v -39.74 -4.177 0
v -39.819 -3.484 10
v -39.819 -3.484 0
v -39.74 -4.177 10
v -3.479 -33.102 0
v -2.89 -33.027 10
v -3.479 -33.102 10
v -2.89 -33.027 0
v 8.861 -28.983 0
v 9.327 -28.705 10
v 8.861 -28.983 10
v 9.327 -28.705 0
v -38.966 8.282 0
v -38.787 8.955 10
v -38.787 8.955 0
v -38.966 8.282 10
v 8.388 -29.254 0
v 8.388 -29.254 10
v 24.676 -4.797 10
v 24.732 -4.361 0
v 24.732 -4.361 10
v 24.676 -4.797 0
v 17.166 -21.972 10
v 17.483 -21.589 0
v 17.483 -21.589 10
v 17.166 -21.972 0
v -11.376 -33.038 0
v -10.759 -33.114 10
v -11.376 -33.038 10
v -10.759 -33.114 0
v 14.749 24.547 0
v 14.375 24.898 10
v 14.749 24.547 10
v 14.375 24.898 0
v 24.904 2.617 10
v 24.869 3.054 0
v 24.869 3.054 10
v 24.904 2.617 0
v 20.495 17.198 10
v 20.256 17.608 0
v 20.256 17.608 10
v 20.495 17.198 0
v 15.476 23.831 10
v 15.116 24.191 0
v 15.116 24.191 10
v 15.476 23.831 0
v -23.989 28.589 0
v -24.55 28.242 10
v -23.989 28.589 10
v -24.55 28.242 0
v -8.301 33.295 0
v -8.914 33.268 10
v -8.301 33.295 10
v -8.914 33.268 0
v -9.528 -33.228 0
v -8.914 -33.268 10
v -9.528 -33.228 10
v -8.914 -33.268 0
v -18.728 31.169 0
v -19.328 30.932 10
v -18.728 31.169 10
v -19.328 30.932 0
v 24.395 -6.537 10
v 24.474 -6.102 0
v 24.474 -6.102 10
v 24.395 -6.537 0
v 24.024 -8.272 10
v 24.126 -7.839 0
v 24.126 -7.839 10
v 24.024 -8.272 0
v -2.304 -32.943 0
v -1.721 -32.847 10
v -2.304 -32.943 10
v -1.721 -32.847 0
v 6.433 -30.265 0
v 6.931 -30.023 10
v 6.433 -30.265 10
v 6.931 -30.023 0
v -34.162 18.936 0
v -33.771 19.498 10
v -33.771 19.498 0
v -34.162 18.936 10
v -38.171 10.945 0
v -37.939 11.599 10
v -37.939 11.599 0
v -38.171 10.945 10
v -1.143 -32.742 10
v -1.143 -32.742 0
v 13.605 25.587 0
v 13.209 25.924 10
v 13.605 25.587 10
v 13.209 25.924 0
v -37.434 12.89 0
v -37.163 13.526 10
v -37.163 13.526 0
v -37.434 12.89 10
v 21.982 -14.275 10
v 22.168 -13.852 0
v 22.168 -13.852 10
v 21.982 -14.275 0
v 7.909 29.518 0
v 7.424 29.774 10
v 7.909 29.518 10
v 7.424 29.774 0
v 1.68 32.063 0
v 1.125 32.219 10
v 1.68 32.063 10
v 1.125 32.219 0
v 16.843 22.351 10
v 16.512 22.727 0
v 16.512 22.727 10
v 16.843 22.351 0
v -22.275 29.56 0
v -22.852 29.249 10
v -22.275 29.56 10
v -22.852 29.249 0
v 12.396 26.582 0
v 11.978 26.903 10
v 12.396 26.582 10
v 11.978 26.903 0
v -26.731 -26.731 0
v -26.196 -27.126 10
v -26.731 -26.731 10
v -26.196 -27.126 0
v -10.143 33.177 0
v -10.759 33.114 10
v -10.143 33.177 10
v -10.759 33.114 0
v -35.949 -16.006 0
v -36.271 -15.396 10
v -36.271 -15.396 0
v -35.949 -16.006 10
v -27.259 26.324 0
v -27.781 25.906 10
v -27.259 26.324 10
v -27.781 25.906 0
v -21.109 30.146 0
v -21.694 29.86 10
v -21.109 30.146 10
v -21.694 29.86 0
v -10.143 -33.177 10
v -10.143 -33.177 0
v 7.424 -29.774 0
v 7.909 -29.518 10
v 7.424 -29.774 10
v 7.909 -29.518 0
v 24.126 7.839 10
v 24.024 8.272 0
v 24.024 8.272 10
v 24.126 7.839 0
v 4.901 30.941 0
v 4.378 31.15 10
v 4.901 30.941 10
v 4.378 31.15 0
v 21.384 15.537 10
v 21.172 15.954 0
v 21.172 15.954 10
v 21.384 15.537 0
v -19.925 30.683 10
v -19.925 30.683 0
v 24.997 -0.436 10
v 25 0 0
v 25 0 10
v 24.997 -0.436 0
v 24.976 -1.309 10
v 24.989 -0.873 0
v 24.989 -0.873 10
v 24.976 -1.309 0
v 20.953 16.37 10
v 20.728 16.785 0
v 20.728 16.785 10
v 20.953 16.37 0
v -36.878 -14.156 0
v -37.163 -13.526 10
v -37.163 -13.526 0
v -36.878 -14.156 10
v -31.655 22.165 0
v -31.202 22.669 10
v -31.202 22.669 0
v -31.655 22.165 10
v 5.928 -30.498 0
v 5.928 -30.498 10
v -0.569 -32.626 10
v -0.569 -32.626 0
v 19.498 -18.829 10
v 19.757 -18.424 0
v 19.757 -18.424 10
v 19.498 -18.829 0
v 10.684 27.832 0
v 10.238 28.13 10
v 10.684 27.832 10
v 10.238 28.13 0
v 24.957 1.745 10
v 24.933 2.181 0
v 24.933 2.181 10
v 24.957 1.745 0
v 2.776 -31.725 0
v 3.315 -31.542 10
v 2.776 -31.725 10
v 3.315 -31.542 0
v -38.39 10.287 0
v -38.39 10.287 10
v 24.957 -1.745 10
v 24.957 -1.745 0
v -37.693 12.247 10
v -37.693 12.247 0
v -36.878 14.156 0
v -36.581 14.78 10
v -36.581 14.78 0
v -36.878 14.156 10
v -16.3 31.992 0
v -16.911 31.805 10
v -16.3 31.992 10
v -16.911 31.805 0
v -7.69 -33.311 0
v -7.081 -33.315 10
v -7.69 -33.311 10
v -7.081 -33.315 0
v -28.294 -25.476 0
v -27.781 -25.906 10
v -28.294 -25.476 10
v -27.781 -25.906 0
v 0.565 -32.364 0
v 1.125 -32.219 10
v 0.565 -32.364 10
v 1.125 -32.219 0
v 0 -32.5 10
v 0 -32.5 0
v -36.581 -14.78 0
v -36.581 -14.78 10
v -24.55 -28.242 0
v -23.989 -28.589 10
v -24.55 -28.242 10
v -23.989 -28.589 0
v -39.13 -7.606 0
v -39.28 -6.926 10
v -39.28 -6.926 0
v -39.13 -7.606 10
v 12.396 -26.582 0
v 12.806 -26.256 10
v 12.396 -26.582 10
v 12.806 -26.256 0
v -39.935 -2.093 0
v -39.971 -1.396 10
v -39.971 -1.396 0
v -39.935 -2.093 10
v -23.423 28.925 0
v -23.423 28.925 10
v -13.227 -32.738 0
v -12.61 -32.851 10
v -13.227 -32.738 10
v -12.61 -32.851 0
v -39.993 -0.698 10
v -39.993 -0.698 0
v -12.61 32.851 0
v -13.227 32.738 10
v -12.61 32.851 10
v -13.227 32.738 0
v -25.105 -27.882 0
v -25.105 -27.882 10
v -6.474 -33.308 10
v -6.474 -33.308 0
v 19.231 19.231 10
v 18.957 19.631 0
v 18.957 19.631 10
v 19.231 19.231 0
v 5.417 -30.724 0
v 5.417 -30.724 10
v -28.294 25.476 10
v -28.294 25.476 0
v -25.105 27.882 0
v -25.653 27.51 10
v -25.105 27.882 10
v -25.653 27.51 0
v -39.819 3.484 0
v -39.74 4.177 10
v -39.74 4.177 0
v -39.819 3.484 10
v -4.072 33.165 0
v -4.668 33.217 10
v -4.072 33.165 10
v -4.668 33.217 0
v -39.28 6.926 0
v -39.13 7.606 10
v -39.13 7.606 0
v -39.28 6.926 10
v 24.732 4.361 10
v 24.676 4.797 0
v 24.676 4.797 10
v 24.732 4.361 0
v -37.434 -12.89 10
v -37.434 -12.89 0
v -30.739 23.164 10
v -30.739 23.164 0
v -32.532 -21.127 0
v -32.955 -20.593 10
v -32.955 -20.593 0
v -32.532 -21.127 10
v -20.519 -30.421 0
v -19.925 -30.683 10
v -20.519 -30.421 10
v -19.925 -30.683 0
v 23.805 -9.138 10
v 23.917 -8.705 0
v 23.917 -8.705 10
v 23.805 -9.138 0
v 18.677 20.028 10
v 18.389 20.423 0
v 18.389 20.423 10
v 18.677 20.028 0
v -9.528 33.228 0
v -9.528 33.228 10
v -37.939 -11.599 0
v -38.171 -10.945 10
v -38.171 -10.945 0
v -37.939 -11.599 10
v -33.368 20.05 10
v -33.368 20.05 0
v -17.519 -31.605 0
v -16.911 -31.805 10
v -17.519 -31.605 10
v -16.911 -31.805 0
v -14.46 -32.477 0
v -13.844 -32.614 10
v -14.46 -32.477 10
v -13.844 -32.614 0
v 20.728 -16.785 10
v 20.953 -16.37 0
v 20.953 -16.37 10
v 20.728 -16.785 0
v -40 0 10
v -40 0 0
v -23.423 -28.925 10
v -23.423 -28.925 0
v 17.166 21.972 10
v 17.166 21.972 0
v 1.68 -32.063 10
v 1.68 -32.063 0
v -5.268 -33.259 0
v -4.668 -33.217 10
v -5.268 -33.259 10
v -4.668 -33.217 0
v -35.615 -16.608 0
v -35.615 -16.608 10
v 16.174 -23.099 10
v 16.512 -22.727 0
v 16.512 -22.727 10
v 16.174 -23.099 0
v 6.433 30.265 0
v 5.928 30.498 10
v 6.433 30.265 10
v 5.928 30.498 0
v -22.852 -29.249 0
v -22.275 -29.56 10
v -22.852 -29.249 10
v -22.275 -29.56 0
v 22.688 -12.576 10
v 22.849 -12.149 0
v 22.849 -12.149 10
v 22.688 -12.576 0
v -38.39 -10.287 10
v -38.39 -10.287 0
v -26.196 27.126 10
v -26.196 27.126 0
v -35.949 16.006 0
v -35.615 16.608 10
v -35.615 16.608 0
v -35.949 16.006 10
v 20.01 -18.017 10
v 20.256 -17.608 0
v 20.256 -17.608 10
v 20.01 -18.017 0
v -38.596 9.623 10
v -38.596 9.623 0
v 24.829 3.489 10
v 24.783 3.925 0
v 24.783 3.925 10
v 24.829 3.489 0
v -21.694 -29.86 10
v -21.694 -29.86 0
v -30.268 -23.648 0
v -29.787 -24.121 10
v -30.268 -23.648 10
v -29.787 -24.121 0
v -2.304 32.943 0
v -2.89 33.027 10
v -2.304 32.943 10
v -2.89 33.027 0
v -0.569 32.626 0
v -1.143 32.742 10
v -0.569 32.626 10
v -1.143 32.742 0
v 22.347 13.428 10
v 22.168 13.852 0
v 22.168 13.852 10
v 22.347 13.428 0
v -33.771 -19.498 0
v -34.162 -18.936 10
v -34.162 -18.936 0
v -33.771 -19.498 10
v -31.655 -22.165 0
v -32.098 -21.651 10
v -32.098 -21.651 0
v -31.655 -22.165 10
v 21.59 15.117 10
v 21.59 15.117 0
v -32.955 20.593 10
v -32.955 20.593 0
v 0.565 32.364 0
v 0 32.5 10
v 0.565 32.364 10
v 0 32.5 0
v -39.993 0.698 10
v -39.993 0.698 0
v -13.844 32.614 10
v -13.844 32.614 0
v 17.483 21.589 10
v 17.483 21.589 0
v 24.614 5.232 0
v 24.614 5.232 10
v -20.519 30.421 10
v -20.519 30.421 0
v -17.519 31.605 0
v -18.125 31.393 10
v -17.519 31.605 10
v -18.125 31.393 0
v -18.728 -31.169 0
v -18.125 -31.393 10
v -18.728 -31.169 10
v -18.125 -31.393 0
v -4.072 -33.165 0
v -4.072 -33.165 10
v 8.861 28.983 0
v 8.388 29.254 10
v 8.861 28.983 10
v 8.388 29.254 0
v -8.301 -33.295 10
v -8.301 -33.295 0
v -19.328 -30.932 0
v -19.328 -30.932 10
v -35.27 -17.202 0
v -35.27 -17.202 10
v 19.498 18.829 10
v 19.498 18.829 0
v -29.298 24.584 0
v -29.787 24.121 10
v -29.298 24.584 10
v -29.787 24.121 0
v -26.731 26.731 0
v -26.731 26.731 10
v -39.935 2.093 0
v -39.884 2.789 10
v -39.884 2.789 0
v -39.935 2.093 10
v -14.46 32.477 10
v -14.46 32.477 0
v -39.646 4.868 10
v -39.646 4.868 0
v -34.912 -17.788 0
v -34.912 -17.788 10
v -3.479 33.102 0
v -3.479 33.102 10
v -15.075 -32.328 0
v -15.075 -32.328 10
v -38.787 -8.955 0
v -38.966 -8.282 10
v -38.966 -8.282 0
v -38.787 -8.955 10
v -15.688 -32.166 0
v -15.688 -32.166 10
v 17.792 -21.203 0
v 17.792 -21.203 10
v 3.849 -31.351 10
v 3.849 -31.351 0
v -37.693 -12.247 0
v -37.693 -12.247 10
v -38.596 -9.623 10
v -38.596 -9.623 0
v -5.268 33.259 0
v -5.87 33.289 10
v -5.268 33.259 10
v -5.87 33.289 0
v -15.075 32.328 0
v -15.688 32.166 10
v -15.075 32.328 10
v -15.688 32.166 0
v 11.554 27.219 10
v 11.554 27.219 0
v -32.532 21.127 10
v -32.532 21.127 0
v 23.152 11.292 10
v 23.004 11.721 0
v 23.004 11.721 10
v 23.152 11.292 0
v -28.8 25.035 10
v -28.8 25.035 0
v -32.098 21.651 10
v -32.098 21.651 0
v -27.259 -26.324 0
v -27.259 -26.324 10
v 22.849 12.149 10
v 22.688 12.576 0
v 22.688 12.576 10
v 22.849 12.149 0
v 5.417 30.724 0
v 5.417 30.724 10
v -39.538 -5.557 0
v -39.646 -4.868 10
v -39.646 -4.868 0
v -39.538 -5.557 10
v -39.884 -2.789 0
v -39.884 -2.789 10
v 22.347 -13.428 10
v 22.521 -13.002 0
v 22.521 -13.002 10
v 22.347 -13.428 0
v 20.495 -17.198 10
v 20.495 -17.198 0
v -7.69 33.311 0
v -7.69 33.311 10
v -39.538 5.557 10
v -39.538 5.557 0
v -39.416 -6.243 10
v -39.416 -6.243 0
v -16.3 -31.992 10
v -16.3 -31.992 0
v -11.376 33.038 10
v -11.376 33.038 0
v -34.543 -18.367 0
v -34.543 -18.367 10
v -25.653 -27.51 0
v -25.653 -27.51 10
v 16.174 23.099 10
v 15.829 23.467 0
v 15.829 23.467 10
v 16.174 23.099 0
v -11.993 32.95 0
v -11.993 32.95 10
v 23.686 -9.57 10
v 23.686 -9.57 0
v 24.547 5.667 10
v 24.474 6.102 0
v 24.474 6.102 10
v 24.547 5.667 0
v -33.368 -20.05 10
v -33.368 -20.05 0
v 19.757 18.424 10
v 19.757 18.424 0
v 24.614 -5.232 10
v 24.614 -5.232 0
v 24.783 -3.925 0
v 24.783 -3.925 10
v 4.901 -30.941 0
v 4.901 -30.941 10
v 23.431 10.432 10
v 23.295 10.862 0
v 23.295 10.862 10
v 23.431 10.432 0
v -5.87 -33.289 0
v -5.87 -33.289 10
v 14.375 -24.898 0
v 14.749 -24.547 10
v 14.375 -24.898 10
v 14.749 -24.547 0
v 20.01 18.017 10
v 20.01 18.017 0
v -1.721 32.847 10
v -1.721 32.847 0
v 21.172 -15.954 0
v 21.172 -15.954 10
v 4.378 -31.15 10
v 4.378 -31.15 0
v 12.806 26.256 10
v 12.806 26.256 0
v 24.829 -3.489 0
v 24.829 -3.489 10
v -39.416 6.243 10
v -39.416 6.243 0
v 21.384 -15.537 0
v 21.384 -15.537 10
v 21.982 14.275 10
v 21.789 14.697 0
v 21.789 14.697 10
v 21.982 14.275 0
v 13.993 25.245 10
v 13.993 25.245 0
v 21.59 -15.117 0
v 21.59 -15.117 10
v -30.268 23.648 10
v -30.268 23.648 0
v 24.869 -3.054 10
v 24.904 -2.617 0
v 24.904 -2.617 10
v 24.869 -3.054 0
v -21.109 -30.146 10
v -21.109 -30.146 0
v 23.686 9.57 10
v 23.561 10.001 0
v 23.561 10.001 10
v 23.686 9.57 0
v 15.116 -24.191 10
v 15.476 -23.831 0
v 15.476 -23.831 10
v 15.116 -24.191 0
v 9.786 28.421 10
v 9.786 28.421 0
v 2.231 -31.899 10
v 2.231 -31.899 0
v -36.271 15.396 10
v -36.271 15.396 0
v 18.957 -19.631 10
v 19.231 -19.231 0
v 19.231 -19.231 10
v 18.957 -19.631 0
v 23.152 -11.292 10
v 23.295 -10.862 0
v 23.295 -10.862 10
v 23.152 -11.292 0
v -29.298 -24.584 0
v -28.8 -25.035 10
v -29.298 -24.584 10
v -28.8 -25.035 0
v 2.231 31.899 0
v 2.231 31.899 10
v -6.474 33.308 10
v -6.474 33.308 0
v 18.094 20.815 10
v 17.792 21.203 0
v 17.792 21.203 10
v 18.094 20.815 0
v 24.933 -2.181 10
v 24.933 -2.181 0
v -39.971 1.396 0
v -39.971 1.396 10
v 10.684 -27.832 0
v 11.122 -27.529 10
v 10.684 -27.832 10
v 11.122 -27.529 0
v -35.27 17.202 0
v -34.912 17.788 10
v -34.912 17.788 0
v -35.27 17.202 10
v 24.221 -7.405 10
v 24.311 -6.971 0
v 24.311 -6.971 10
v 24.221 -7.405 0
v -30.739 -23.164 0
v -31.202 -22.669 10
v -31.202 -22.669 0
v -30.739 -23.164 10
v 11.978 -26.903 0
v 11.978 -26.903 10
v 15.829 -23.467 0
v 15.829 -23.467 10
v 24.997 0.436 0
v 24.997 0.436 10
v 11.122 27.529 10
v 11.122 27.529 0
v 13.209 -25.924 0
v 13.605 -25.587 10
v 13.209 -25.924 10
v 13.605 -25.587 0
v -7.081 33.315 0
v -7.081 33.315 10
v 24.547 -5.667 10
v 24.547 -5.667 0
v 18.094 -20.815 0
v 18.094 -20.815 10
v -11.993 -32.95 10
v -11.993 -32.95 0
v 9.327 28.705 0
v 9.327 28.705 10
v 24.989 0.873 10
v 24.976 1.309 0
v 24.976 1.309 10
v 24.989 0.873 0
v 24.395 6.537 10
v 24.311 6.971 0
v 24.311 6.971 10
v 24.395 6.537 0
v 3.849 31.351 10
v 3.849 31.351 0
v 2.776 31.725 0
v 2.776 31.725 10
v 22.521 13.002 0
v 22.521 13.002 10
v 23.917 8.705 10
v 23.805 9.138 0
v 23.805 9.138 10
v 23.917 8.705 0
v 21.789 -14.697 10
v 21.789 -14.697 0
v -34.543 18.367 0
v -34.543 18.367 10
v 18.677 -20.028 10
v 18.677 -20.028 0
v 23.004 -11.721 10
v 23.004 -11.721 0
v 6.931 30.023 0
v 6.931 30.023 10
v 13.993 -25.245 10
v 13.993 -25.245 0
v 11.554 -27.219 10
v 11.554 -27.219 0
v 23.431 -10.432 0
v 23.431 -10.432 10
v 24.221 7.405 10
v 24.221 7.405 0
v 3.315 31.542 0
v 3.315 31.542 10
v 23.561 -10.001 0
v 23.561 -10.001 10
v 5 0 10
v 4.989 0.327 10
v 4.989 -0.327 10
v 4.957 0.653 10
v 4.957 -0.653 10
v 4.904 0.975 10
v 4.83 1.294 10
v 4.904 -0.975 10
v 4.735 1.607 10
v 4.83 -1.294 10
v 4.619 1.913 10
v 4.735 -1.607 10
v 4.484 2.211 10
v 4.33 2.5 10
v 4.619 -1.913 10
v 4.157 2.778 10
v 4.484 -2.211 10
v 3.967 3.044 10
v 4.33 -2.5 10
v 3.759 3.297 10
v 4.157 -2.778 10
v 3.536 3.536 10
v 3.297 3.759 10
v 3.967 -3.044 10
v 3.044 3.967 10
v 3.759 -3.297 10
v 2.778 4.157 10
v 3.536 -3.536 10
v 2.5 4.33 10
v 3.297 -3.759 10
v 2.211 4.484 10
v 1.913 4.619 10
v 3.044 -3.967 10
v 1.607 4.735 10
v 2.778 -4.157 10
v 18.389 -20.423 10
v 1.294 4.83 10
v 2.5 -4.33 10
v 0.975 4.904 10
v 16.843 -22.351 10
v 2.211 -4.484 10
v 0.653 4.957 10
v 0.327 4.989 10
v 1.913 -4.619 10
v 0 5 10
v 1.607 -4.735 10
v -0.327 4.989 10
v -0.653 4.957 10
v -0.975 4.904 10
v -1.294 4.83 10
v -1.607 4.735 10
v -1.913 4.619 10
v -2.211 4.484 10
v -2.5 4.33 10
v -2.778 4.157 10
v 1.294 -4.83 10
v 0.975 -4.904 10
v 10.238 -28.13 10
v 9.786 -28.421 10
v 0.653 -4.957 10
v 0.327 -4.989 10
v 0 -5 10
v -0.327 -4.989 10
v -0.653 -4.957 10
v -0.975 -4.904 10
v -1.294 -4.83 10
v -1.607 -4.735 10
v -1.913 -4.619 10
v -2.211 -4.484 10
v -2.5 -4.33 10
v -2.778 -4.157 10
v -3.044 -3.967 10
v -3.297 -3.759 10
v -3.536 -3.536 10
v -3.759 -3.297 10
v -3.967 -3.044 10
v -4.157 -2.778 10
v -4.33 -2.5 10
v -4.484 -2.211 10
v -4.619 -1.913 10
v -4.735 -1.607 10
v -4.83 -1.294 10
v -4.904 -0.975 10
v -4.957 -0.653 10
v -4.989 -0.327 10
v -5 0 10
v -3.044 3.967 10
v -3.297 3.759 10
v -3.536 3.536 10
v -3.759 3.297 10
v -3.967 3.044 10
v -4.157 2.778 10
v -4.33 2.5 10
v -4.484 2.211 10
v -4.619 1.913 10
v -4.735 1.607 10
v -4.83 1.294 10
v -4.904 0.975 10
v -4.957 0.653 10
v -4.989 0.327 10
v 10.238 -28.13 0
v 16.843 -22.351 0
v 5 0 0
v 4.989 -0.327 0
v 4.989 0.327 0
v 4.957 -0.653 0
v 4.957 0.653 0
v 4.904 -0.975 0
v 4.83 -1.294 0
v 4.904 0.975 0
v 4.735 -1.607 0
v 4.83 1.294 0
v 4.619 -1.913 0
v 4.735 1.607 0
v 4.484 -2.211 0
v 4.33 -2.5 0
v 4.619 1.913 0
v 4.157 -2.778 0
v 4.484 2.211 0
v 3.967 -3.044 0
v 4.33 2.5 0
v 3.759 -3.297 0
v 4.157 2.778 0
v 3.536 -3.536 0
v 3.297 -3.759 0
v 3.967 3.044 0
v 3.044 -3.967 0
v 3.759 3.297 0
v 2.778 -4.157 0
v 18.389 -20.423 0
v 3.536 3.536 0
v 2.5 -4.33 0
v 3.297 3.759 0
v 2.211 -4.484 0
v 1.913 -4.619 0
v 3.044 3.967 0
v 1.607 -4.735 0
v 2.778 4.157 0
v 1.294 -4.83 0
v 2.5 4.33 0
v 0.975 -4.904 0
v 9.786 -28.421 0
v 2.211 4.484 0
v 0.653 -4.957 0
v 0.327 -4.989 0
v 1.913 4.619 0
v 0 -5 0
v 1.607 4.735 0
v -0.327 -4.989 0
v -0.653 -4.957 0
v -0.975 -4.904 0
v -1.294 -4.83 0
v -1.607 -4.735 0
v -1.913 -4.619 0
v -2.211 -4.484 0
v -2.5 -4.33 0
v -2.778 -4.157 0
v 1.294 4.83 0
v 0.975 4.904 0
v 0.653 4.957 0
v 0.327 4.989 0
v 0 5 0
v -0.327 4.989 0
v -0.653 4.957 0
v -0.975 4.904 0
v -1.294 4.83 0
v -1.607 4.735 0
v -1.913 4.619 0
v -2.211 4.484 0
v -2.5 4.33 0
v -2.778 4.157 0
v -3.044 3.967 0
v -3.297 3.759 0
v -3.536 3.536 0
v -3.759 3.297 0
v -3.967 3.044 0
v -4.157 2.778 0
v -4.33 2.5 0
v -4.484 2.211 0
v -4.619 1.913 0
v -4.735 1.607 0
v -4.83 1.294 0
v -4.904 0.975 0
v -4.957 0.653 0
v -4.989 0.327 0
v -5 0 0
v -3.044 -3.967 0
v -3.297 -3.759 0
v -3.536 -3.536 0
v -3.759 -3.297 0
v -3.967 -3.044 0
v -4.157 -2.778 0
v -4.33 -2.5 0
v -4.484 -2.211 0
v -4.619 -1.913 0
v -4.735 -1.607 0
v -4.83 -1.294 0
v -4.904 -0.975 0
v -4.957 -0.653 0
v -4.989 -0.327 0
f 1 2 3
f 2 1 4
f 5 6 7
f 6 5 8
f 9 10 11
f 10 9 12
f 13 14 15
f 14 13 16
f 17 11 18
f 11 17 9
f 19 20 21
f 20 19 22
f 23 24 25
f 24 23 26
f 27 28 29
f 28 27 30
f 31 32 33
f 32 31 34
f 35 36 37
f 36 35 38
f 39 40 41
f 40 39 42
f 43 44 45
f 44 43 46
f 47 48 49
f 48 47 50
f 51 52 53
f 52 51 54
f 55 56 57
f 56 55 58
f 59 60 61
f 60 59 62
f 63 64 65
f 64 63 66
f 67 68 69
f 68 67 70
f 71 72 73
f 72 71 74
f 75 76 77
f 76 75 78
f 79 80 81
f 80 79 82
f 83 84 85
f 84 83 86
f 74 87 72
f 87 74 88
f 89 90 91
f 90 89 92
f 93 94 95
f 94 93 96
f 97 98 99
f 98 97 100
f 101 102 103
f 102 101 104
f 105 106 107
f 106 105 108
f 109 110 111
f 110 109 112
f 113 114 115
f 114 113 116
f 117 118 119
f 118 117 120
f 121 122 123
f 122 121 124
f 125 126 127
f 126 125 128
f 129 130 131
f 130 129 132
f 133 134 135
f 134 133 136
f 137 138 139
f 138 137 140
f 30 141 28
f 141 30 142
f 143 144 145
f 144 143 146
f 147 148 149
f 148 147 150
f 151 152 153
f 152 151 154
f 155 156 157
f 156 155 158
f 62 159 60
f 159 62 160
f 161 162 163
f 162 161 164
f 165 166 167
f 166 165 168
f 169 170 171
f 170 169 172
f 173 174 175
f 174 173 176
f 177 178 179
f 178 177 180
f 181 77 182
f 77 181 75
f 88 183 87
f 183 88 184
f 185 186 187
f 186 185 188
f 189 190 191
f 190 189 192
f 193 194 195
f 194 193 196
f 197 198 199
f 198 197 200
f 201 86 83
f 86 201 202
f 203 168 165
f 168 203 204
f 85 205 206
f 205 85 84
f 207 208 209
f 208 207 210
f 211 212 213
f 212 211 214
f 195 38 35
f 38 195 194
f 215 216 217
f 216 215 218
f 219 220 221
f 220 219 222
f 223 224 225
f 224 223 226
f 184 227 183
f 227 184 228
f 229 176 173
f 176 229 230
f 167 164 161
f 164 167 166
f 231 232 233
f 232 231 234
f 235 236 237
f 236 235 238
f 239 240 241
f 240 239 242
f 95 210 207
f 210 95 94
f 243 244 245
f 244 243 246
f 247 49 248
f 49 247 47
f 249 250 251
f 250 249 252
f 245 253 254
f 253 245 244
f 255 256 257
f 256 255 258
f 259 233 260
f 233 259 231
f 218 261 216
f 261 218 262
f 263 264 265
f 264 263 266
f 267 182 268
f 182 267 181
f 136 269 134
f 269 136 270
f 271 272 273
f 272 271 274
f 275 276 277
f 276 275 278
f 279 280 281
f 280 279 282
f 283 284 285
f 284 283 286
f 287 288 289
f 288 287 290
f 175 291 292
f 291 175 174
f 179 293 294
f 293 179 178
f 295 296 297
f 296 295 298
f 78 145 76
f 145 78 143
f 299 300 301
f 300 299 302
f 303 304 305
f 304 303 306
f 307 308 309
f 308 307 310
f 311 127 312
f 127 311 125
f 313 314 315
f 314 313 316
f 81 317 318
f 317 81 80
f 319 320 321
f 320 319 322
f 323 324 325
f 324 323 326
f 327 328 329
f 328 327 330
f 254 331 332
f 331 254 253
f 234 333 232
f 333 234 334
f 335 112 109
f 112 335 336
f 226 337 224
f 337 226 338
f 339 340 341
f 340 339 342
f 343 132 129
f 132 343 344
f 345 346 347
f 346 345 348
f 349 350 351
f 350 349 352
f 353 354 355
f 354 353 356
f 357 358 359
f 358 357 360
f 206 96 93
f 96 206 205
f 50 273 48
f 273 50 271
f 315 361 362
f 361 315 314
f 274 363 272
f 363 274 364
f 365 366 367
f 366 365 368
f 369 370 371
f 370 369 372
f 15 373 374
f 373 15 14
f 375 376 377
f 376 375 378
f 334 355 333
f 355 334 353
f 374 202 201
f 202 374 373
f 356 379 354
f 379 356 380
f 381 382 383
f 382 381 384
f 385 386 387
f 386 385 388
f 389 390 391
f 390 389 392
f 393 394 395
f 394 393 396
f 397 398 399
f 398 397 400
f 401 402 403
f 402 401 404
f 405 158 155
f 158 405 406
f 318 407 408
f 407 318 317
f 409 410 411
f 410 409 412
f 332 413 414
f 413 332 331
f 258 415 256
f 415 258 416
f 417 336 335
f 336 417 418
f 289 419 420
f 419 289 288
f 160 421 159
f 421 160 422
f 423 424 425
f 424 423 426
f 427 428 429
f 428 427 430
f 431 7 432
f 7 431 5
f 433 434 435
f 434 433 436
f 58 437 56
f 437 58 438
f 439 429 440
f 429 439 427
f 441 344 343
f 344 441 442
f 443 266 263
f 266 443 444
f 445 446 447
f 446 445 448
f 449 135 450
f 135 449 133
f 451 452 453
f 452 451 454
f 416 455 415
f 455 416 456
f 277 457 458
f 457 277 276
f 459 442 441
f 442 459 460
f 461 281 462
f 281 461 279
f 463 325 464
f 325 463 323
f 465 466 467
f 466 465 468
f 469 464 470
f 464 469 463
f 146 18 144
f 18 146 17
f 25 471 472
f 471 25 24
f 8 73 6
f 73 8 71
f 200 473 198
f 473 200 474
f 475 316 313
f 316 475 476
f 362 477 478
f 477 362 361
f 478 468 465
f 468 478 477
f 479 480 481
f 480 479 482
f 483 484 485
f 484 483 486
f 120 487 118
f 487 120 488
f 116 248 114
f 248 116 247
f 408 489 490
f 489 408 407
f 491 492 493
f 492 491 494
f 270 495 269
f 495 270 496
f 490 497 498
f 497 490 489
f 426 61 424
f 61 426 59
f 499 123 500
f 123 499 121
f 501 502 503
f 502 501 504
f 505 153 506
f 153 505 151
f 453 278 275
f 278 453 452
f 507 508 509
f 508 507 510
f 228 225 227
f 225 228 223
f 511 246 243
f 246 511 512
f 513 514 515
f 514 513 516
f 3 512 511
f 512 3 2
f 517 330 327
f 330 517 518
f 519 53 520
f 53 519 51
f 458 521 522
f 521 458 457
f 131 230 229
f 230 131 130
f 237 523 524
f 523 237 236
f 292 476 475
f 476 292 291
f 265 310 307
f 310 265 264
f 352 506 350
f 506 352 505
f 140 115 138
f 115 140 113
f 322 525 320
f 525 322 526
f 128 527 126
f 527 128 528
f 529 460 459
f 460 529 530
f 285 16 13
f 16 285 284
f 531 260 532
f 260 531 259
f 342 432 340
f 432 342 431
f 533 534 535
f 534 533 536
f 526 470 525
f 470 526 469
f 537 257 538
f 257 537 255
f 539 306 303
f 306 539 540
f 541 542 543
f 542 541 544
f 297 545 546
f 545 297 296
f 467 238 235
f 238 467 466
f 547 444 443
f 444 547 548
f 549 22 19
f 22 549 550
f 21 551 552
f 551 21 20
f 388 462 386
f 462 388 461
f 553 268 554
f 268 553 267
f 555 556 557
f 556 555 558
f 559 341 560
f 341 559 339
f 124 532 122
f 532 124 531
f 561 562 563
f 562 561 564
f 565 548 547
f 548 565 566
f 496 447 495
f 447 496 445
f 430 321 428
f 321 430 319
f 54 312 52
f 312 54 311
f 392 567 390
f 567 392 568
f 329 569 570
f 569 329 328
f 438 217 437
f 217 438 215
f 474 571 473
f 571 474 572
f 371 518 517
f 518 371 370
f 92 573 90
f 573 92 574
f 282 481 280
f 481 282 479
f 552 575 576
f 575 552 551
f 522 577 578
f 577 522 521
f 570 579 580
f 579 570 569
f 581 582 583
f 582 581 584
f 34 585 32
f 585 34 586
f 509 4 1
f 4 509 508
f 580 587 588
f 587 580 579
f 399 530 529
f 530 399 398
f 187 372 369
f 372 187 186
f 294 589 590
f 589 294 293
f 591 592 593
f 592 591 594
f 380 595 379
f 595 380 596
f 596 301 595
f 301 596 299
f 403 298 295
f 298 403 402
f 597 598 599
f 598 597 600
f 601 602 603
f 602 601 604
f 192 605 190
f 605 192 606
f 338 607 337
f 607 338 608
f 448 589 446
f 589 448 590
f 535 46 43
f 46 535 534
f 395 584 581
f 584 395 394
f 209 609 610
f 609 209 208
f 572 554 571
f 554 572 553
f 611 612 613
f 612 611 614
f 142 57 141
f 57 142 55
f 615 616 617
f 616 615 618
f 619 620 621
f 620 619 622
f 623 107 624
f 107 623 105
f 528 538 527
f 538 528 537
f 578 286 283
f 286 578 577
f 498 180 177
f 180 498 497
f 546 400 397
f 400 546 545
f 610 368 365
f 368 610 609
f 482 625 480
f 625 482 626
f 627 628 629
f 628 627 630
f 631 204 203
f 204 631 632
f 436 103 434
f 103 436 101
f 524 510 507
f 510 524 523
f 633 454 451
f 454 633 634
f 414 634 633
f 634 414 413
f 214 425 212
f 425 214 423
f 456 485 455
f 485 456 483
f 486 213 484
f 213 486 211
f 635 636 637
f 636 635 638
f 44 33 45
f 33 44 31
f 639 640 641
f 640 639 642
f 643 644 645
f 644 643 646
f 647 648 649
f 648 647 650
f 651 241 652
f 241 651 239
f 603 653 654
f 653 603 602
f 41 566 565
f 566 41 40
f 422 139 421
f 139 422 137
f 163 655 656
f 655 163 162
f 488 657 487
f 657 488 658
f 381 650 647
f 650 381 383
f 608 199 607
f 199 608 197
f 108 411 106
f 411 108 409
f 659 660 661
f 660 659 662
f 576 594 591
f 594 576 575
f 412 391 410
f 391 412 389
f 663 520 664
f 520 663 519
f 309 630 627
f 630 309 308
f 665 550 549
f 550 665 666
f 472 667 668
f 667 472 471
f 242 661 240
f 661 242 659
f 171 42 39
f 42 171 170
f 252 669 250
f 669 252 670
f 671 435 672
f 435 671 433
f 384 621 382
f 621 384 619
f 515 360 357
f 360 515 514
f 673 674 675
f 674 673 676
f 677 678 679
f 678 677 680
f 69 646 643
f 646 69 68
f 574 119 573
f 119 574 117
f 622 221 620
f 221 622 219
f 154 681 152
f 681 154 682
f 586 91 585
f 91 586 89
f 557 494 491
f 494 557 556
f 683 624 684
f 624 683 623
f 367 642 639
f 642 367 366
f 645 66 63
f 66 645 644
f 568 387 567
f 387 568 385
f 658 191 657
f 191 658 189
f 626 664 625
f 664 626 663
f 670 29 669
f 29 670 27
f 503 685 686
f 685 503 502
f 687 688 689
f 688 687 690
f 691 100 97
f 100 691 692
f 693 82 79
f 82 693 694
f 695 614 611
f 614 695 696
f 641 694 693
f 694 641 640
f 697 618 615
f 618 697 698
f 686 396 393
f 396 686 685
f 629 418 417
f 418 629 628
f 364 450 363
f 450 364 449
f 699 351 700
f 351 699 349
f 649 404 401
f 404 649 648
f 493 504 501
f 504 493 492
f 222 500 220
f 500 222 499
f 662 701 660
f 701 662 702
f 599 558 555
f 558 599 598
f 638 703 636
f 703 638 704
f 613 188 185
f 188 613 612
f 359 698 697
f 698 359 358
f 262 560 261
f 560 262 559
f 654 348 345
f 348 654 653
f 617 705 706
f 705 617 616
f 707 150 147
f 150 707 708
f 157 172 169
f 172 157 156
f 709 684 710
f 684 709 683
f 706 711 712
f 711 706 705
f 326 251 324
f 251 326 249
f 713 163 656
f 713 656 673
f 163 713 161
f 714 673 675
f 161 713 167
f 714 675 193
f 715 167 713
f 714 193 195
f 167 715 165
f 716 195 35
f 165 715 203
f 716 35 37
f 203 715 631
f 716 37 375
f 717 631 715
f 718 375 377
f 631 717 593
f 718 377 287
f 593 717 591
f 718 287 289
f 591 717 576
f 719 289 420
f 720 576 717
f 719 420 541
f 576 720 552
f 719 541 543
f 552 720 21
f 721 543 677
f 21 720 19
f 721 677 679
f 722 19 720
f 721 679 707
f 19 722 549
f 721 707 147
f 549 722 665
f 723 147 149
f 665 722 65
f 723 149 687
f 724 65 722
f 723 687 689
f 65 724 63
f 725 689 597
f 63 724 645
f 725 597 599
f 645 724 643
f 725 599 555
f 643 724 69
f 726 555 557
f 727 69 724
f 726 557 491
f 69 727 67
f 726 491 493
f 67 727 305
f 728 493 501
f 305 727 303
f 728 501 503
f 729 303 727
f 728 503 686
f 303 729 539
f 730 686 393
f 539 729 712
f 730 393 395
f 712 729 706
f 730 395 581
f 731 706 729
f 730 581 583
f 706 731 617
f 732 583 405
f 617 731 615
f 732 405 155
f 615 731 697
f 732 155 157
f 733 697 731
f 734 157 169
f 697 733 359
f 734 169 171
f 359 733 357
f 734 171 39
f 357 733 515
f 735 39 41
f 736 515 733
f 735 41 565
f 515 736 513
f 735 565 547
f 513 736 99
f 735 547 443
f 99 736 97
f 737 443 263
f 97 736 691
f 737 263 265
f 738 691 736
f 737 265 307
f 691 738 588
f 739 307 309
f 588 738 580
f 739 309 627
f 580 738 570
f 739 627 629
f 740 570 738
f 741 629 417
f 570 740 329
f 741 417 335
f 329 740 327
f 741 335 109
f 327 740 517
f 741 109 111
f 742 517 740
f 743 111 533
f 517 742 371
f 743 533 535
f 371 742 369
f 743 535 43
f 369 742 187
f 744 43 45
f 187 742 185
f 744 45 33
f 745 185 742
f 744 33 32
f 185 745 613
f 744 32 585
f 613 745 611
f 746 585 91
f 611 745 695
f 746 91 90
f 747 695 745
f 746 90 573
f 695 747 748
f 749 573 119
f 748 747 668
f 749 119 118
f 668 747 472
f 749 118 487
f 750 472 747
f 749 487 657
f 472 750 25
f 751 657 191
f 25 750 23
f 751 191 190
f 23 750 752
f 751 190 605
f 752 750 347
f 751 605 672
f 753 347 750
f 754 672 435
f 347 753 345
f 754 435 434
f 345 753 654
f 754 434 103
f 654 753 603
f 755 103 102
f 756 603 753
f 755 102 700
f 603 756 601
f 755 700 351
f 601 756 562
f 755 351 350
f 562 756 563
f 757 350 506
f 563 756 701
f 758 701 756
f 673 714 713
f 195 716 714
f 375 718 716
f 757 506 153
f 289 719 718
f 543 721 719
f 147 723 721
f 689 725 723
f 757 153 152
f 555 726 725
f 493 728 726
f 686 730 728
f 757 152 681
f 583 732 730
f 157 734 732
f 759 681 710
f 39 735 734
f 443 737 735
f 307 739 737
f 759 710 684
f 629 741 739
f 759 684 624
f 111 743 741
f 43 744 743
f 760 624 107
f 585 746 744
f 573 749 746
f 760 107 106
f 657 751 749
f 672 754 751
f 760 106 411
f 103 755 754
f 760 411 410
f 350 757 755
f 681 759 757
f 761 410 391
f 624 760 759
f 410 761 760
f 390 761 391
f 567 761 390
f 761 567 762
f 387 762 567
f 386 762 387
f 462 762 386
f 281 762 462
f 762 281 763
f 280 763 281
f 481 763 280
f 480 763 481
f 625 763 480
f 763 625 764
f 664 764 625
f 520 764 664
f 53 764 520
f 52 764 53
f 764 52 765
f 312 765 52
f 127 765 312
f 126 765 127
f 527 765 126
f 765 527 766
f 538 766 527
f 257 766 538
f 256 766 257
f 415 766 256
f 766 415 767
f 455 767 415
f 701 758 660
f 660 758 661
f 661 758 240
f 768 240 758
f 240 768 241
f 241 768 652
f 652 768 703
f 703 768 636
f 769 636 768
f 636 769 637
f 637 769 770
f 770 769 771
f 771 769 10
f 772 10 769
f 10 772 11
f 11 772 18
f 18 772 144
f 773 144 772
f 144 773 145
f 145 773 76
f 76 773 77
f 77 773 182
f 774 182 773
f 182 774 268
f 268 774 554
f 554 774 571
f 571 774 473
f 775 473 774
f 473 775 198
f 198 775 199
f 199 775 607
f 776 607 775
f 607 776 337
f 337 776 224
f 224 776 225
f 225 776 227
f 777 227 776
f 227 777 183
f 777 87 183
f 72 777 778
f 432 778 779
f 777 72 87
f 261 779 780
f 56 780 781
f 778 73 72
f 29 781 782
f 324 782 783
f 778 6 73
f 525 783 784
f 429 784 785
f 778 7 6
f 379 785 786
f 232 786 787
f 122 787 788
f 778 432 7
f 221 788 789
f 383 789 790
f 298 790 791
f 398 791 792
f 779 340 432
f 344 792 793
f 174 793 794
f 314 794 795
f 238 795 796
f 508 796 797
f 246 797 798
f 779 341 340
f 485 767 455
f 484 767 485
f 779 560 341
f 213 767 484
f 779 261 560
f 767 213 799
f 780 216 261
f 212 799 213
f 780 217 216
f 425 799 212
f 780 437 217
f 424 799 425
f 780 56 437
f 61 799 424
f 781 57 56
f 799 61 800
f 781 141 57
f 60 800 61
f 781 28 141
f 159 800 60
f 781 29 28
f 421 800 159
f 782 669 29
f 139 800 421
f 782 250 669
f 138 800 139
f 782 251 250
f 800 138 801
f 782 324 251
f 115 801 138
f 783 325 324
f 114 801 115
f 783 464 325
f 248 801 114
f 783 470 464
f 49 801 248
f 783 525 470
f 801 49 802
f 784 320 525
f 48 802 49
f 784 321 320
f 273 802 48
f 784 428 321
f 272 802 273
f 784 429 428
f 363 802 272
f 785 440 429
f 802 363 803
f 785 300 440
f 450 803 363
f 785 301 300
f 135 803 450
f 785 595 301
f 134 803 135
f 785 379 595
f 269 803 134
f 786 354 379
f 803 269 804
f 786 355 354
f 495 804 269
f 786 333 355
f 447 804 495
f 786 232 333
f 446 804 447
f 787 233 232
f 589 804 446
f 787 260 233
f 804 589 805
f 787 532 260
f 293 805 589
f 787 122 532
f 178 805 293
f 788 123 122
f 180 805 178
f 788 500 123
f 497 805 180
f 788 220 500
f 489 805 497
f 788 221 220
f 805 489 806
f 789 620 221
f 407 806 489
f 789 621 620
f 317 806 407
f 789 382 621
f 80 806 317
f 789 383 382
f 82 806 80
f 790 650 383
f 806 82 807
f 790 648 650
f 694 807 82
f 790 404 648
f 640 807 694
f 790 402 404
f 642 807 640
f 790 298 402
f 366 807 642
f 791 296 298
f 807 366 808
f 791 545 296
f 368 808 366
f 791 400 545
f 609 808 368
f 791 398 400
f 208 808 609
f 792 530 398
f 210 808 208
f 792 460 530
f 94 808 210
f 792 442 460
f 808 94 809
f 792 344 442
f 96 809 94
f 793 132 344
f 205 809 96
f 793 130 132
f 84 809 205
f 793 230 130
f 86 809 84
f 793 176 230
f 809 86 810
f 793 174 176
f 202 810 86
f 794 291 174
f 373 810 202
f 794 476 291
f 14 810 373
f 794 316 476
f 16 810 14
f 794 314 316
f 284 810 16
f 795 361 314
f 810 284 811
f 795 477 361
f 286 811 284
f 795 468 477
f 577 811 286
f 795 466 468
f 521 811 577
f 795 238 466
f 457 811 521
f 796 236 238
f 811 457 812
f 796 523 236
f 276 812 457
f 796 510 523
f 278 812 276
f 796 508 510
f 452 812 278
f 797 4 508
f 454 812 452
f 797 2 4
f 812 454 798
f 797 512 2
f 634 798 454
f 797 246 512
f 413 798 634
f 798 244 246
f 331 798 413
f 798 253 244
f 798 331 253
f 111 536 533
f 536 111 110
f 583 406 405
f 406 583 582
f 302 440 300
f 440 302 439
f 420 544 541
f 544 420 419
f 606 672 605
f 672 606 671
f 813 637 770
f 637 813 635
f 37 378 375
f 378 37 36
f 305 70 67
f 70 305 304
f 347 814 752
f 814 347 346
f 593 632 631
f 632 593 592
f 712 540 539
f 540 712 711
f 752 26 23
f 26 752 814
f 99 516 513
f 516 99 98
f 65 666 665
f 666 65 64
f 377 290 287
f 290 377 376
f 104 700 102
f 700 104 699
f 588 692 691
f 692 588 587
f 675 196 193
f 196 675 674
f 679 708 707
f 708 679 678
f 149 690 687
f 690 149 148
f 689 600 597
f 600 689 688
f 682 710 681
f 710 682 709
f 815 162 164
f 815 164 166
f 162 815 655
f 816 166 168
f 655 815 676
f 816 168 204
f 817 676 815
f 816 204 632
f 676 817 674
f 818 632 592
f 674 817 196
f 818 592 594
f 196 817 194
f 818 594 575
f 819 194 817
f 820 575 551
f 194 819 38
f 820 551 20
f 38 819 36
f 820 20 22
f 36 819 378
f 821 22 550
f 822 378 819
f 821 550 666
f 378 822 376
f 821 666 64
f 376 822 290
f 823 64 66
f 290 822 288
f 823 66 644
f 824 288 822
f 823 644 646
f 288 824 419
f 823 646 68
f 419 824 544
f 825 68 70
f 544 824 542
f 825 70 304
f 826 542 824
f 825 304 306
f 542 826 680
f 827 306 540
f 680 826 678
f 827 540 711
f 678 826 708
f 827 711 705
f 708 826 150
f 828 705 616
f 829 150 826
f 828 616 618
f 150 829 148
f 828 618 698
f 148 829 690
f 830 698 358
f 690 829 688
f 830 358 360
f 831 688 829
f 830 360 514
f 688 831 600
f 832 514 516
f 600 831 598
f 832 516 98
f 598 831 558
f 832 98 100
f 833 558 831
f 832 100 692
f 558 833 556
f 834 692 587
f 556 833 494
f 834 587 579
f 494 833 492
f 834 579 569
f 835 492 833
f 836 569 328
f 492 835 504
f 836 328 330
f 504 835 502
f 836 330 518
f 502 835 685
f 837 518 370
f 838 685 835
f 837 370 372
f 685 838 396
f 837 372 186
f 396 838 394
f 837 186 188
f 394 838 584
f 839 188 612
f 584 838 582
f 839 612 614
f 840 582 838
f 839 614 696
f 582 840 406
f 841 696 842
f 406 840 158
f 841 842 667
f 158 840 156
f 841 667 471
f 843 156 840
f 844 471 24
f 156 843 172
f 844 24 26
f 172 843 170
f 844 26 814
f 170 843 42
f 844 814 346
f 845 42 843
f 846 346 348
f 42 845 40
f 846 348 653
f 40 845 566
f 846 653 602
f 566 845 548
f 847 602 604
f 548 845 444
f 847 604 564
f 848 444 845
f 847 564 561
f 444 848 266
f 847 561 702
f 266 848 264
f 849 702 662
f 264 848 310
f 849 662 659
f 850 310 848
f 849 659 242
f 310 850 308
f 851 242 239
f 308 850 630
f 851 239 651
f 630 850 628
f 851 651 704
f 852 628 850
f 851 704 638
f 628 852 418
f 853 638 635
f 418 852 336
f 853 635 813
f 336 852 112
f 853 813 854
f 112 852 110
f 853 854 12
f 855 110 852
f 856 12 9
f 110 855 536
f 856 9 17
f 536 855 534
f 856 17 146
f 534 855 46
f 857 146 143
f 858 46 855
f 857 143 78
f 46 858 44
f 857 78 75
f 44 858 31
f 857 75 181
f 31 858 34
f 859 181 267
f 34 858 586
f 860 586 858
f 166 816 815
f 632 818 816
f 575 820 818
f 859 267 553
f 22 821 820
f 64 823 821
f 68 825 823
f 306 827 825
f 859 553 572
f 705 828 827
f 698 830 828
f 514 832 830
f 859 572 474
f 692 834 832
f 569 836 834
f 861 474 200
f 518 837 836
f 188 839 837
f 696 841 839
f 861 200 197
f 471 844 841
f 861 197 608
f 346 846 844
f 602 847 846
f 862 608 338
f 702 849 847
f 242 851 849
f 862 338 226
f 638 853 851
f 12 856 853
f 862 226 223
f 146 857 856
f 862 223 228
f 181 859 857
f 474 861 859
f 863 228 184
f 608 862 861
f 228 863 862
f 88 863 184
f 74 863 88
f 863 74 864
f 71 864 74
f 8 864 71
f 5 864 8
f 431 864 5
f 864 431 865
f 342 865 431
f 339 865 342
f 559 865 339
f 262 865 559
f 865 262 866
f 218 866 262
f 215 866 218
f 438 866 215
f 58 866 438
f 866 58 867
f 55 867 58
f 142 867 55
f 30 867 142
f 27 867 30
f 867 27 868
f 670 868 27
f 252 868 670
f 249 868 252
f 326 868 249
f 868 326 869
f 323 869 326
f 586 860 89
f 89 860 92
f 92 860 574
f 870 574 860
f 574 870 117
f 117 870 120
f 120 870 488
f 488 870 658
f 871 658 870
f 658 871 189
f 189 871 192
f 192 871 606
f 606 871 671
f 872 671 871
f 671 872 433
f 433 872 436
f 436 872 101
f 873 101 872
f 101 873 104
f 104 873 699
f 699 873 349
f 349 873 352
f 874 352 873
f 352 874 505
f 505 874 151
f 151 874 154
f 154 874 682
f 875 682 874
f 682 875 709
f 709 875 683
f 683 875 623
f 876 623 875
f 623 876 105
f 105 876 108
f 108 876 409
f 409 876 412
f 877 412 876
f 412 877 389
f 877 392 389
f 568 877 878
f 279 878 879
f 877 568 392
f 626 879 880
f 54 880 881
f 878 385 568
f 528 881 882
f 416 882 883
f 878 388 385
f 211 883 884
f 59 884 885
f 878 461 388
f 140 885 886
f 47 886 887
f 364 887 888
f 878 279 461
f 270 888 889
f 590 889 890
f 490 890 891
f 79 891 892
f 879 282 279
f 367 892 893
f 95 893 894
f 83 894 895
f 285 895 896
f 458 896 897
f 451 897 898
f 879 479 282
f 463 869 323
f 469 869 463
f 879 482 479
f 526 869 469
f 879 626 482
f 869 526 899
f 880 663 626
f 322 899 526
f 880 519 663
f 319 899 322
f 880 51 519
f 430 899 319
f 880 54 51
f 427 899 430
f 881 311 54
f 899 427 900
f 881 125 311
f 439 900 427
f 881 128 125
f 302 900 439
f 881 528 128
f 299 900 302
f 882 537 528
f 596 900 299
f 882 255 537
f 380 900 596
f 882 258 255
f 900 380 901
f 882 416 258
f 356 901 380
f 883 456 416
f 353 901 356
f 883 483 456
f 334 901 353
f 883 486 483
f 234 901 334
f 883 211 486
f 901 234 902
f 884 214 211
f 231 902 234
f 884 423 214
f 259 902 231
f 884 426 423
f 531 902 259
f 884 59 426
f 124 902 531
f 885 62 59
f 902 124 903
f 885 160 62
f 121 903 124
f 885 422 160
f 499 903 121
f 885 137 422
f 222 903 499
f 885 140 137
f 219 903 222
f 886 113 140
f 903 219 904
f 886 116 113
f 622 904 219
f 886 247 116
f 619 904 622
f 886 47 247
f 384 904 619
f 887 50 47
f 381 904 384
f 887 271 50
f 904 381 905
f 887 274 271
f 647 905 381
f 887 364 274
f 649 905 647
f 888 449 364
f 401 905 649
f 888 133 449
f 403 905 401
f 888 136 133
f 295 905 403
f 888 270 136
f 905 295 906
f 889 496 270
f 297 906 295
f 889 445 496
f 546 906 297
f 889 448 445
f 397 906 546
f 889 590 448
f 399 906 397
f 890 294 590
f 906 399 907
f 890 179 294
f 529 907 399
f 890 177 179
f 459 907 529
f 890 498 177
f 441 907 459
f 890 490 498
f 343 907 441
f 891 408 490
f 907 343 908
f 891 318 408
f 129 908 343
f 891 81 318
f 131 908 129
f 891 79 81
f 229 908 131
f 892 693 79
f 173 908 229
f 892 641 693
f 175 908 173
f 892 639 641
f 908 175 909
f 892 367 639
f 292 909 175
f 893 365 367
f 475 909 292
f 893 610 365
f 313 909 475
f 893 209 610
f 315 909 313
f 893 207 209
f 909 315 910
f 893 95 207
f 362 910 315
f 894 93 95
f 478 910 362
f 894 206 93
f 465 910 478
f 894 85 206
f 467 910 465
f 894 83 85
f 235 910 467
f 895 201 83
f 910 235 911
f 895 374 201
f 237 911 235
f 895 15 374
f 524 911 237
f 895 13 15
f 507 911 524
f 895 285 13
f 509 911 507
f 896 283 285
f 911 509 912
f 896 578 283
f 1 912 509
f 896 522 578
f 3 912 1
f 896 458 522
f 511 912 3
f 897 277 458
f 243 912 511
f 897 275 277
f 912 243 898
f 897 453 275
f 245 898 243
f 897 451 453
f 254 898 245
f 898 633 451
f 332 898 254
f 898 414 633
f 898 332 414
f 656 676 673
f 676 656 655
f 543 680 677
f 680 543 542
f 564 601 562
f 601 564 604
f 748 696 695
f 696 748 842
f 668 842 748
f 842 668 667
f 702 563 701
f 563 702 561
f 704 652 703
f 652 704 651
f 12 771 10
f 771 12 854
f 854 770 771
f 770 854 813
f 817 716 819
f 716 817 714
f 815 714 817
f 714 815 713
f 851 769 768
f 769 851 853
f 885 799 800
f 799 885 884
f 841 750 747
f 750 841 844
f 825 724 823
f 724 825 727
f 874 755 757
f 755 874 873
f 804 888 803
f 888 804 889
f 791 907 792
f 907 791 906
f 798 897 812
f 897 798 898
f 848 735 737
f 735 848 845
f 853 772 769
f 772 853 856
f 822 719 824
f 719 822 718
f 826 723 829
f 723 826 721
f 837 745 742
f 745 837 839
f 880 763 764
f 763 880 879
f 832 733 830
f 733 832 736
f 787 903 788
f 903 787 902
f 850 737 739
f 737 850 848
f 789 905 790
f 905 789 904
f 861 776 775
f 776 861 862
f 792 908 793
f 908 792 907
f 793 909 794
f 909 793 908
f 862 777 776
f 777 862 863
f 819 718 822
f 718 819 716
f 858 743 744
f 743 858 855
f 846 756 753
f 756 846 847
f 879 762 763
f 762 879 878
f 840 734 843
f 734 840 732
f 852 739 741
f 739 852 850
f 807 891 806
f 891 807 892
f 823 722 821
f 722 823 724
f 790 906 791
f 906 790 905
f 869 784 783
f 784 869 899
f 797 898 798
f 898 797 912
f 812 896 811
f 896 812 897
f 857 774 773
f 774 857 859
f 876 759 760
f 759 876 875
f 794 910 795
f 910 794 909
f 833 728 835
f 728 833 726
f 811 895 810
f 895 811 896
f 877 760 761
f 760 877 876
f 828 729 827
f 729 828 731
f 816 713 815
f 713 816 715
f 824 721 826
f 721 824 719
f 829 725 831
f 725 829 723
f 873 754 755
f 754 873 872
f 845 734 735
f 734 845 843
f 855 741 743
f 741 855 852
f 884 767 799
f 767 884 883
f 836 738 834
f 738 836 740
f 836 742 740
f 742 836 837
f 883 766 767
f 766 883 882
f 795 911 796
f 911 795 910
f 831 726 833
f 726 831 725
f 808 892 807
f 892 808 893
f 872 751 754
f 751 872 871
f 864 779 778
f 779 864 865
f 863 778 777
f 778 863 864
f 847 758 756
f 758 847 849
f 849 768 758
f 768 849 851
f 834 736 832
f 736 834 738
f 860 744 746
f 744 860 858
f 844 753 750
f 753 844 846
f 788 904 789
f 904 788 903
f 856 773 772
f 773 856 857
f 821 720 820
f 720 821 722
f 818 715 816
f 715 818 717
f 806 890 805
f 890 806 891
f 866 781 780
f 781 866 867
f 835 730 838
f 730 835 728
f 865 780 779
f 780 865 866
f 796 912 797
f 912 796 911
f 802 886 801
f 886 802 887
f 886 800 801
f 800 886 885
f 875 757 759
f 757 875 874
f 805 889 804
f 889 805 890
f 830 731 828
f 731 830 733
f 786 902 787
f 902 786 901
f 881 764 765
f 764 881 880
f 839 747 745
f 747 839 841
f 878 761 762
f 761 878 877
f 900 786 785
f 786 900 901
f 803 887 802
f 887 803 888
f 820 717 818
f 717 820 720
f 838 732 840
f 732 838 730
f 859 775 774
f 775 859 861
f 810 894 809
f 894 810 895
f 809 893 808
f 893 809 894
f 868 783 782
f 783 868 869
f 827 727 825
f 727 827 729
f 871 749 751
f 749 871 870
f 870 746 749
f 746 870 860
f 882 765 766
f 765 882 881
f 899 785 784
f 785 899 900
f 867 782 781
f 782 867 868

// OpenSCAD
// @main_component radial_disk_cam

// Radial disk cam for a translating knife-edge follower.
// Displacement law over one revolution:
//   lift(theta) = lift_max/2 * (1 - cos(theta))
// This gives zero lift at 0/360 degrees, maximum lift at 180 degrees,
// and zero profile slope at all three transition positions.

// @param min=25 max=25 step=1 label=Base circle radius (mm)
base_radius = 25;

// @param min=15 max=15 step=1 label=Maximum lift (mm)
lift_max = 15;

// @param min=10 max=10 step=1 label=Cam thickness (mm)
cam_thickness = 10;

// @param min=10 max=10 step=1 label=Center bore diameter (mm)
bore_diameter = 10;

// One-degree sampling keeps polygon facets well below the 0.4 mm nozzle scale.
profile_segments = 360;
bore_segments = 96;

profile_points = [
    for (i = [0 : profile_segments - 1])
        let(
            angle = i * 360 / profile_segments,
            follower_lift = lift_max / 2 * (1 - cos(angle)),
            profile_radius = base_radius + follower_lift
        )
        [
            profile_radius * cos(angle),
            profile_radius * sin(angle)
        ]
];

difference() {
    linear_extrude(height = cam_thickness, convexity = 10)
        polygon(points = profile_points);

    // Extend the cutter beyond both faces to guarantee a clean through bore.
    translate([0, 0, -0.5])
        cylinder(
            h = cam_thickness + 1,
            d = bore_diameter,
            $fn = bore_segments
        );
}
